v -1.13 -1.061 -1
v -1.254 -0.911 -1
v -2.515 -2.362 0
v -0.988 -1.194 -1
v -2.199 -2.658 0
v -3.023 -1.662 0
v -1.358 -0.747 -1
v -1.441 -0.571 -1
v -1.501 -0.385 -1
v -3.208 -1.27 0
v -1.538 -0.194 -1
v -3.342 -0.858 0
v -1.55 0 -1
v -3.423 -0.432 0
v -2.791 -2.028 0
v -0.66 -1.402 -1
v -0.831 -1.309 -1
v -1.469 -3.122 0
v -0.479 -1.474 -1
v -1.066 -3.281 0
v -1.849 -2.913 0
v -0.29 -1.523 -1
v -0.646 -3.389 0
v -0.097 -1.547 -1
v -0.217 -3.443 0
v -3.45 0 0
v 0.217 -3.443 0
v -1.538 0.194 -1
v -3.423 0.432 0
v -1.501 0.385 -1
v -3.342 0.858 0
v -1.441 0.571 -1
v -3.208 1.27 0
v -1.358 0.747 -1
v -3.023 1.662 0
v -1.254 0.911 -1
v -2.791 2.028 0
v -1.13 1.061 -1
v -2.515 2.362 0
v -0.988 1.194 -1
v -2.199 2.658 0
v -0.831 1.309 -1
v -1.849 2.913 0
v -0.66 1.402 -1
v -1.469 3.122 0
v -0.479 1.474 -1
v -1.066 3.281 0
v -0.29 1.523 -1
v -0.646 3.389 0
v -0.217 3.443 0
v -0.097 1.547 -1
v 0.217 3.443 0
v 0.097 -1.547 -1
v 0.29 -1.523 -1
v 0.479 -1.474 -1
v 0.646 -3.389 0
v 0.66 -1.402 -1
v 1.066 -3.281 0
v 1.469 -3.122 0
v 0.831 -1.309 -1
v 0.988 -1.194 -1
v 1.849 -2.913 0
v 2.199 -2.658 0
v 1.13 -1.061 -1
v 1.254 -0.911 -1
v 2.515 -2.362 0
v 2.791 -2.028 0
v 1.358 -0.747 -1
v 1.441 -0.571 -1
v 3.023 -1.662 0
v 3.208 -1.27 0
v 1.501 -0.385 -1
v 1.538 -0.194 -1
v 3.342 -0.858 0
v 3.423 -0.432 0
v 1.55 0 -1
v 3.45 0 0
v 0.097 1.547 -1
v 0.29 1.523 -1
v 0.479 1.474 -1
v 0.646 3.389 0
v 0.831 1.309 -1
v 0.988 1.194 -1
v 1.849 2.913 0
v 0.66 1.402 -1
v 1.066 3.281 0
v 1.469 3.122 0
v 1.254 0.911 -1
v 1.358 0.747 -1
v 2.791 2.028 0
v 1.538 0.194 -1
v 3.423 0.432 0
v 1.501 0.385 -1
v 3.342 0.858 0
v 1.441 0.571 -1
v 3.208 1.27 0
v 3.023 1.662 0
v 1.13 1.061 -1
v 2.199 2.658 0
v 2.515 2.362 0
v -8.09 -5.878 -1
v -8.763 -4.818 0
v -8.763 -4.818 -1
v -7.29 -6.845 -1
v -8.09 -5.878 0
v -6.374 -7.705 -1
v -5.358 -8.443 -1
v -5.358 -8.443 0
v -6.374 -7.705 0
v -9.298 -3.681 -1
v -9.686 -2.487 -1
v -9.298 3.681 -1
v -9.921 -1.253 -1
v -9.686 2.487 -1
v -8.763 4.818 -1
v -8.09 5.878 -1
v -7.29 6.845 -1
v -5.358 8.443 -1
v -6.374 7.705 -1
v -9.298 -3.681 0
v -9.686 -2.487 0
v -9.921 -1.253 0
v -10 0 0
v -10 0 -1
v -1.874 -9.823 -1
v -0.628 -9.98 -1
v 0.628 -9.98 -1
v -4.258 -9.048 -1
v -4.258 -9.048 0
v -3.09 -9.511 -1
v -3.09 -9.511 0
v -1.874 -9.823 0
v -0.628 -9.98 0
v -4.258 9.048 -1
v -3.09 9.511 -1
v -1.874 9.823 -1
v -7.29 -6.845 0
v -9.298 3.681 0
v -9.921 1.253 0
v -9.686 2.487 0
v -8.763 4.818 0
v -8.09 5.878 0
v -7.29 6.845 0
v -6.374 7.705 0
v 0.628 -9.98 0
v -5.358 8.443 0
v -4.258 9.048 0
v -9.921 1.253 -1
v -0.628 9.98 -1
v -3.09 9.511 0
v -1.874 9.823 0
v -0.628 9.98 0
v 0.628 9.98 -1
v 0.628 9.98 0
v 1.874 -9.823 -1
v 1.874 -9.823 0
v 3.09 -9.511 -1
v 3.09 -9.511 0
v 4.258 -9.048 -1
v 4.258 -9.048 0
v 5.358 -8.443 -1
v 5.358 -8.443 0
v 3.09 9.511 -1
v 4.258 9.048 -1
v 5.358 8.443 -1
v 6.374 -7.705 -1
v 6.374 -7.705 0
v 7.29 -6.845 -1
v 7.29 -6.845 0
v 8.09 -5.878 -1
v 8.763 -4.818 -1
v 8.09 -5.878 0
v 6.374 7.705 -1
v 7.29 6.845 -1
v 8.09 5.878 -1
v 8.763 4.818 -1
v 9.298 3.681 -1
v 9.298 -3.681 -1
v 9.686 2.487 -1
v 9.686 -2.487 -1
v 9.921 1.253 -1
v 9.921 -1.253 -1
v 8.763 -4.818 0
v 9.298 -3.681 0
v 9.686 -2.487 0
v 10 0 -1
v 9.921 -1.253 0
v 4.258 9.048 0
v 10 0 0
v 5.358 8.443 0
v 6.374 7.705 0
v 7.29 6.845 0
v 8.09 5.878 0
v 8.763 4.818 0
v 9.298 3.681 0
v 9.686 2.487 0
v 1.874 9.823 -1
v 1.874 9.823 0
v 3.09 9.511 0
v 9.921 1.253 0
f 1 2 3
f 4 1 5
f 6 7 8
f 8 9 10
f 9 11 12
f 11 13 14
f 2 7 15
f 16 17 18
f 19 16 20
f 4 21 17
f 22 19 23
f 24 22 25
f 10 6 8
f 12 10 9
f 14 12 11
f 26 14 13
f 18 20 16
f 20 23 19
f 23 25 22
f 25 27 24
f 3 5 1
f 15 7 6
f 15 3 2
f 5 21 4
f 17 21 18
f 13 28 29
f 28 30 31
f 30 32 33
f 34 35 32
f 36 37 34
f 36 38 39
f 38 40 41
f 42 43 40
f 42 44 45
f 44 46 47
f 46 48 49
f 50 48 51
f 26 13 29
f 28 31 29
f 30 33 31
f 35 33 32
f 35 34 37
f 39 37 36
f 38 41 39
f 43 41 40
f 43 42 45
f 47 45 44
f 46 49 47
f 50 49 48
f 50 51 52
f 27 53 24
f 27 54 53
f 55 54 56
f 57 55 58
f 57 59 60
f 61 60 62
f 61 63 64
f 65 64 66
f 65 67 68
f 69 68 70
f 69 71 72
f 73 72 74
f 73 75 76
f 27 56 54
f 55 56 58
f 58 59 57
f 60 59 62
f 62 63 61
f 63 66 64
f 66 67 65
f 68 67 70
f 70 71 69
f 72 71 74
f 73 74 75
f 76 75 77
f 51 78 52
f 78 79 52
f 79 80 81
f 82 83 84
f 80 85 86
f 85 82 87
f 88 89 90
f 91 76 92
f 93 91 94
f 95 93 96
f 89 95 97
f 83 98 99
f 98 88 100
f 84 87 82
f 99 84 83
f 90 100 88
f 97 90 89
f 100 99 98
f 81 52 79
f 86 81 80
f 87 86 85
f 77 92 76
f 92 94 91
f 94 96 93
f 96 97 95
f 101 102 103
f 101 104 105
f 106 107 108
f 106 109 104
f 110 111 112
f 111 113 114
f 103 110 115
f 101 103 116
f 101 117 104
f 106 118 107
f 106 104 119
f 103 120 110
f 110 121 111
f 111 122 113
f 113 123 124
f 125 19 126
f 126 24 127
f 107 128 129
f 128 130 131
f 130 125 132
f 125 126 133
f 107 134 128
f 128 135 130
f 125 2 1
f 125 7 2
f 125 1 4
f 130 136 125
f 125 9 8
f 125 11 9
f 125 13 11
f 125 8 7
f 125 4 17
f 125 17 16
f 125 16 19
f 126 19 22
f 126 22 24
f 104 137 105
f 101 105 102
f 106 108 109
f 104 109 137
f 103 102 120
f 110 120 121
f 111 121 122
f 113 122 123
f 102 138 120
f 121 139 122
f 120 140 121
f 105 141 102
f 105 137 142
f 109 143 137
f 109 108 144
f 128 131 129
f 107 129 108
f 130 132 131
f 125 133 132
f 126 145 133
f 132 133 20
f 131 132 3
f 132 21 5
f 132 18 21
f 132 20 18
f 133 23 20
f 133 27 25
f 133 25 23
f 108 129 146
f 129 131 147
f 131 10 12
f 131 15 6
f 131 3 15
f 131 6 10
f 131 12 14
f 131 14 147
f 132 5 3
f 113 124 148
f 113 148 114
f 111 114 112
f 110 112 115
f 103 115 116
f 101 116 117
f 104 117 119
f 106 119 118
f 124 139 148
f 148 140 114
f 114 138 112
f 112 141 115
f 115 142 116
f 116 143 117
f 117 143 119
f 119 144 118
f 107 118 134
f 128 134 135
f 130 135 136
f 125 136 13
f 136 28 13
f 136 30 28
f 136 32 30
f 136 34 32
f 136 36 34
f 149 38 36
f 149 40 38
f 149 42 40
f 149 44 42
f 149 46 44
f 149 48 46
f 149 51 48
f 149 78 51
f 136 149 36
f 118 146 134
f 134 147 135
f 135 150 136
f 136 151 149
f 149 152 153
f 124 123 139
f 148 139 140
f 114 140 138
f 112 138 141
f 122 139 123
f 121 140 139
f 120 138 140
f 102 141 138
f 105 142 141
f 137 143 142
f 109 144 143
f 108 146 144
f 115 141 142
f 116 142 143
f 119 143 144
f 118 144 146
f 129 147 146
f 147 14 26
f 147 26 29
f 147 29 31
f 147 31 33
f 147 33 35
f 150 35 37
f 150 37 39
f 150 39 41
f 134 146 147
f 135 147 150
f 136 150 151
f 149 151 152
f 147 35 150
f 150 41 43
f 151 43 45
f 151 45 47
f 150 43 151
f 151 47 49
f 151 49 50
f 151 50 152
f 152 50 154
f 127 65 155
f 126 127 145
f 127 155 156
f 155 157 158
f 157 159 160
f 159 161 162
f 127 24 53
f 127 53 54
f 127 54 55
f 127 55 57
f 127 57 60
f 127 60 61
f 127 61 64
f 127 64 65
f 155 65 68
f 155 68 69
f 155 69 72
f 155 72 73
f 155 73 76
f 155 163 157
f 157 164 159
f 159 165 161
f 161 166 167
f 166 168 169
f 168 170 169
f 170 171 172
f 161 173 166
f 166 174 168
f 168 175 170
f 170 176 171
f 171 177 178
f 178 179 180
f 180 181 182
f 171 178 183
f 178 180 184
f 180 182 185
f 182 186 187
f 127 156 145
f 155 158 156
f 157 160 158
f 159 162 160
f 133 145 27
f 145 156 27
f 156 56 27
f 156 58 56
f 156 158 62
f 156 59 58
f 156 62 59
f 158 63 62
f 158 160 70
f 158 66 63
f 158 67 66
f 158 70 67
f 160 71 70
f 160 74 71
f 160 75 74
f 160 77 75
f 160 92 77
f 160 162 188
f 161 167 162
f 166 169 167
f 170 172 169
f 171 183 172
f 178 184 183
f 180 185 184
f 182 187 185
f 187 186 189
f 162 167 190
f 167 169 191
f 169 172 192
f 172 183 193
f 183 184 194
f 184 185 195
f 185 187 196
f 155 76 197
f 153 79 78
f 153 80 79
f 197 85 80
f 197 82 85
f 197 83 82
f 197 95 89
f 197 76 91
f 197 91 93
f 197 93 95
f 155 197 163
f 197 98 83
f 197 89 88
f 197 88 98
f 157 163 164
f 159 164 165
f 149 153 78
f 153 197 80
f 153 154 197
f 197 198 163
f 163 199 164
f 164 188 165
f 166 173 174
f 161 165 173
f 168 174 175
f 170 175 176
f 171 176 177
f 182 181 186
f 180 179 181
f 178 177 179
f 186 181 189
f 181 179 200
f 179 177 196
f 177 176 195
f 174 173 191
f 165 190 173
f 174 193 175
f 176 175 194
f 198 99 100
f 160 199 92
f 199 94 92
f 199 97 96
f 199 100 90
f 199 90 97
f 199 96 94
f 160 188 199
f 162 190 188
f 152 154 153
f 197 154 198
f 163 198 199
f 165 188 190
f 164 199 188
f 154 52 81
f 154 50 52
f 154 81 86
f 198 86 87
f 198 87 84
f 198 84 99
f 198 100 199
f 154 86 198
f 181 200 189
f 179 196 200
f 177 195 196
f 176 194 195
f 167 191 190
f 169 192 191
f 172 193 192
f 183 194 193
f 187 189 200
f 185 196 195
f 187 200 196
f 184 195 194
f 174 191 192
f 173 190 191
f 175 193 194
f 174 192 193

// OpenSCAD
$fn = 50;

difference() {
	union() {
		translate(v = [0, 0, -1.0]) {
			cylinder(h = 1.0, r = 10.0);
		}
	}
	union() {
		translate(v = [0, 0, 0]) {
			rotate(a = [0, 0, 0]) {
				difference() {
					union() {
						translate(v = [0, 0, -4.0]) {
							cylinder(h = 4.0, r = 1.25);
						}
						translate(v = [0, 0, -1.0]) {
							cylinder(h = 1.0, r1 = 1.55, r2 = 3.45);
						}
						translate(v = [0, 0, -4.0]) {
							cylinder(h = 4.0, r = 1.55);
						}
						translate(v = [0, 0, -4.0]) {
							cylinder(h = 4.0, r = 1.25);
						}
					}
					union();
				}
			}
		}
	}
}
